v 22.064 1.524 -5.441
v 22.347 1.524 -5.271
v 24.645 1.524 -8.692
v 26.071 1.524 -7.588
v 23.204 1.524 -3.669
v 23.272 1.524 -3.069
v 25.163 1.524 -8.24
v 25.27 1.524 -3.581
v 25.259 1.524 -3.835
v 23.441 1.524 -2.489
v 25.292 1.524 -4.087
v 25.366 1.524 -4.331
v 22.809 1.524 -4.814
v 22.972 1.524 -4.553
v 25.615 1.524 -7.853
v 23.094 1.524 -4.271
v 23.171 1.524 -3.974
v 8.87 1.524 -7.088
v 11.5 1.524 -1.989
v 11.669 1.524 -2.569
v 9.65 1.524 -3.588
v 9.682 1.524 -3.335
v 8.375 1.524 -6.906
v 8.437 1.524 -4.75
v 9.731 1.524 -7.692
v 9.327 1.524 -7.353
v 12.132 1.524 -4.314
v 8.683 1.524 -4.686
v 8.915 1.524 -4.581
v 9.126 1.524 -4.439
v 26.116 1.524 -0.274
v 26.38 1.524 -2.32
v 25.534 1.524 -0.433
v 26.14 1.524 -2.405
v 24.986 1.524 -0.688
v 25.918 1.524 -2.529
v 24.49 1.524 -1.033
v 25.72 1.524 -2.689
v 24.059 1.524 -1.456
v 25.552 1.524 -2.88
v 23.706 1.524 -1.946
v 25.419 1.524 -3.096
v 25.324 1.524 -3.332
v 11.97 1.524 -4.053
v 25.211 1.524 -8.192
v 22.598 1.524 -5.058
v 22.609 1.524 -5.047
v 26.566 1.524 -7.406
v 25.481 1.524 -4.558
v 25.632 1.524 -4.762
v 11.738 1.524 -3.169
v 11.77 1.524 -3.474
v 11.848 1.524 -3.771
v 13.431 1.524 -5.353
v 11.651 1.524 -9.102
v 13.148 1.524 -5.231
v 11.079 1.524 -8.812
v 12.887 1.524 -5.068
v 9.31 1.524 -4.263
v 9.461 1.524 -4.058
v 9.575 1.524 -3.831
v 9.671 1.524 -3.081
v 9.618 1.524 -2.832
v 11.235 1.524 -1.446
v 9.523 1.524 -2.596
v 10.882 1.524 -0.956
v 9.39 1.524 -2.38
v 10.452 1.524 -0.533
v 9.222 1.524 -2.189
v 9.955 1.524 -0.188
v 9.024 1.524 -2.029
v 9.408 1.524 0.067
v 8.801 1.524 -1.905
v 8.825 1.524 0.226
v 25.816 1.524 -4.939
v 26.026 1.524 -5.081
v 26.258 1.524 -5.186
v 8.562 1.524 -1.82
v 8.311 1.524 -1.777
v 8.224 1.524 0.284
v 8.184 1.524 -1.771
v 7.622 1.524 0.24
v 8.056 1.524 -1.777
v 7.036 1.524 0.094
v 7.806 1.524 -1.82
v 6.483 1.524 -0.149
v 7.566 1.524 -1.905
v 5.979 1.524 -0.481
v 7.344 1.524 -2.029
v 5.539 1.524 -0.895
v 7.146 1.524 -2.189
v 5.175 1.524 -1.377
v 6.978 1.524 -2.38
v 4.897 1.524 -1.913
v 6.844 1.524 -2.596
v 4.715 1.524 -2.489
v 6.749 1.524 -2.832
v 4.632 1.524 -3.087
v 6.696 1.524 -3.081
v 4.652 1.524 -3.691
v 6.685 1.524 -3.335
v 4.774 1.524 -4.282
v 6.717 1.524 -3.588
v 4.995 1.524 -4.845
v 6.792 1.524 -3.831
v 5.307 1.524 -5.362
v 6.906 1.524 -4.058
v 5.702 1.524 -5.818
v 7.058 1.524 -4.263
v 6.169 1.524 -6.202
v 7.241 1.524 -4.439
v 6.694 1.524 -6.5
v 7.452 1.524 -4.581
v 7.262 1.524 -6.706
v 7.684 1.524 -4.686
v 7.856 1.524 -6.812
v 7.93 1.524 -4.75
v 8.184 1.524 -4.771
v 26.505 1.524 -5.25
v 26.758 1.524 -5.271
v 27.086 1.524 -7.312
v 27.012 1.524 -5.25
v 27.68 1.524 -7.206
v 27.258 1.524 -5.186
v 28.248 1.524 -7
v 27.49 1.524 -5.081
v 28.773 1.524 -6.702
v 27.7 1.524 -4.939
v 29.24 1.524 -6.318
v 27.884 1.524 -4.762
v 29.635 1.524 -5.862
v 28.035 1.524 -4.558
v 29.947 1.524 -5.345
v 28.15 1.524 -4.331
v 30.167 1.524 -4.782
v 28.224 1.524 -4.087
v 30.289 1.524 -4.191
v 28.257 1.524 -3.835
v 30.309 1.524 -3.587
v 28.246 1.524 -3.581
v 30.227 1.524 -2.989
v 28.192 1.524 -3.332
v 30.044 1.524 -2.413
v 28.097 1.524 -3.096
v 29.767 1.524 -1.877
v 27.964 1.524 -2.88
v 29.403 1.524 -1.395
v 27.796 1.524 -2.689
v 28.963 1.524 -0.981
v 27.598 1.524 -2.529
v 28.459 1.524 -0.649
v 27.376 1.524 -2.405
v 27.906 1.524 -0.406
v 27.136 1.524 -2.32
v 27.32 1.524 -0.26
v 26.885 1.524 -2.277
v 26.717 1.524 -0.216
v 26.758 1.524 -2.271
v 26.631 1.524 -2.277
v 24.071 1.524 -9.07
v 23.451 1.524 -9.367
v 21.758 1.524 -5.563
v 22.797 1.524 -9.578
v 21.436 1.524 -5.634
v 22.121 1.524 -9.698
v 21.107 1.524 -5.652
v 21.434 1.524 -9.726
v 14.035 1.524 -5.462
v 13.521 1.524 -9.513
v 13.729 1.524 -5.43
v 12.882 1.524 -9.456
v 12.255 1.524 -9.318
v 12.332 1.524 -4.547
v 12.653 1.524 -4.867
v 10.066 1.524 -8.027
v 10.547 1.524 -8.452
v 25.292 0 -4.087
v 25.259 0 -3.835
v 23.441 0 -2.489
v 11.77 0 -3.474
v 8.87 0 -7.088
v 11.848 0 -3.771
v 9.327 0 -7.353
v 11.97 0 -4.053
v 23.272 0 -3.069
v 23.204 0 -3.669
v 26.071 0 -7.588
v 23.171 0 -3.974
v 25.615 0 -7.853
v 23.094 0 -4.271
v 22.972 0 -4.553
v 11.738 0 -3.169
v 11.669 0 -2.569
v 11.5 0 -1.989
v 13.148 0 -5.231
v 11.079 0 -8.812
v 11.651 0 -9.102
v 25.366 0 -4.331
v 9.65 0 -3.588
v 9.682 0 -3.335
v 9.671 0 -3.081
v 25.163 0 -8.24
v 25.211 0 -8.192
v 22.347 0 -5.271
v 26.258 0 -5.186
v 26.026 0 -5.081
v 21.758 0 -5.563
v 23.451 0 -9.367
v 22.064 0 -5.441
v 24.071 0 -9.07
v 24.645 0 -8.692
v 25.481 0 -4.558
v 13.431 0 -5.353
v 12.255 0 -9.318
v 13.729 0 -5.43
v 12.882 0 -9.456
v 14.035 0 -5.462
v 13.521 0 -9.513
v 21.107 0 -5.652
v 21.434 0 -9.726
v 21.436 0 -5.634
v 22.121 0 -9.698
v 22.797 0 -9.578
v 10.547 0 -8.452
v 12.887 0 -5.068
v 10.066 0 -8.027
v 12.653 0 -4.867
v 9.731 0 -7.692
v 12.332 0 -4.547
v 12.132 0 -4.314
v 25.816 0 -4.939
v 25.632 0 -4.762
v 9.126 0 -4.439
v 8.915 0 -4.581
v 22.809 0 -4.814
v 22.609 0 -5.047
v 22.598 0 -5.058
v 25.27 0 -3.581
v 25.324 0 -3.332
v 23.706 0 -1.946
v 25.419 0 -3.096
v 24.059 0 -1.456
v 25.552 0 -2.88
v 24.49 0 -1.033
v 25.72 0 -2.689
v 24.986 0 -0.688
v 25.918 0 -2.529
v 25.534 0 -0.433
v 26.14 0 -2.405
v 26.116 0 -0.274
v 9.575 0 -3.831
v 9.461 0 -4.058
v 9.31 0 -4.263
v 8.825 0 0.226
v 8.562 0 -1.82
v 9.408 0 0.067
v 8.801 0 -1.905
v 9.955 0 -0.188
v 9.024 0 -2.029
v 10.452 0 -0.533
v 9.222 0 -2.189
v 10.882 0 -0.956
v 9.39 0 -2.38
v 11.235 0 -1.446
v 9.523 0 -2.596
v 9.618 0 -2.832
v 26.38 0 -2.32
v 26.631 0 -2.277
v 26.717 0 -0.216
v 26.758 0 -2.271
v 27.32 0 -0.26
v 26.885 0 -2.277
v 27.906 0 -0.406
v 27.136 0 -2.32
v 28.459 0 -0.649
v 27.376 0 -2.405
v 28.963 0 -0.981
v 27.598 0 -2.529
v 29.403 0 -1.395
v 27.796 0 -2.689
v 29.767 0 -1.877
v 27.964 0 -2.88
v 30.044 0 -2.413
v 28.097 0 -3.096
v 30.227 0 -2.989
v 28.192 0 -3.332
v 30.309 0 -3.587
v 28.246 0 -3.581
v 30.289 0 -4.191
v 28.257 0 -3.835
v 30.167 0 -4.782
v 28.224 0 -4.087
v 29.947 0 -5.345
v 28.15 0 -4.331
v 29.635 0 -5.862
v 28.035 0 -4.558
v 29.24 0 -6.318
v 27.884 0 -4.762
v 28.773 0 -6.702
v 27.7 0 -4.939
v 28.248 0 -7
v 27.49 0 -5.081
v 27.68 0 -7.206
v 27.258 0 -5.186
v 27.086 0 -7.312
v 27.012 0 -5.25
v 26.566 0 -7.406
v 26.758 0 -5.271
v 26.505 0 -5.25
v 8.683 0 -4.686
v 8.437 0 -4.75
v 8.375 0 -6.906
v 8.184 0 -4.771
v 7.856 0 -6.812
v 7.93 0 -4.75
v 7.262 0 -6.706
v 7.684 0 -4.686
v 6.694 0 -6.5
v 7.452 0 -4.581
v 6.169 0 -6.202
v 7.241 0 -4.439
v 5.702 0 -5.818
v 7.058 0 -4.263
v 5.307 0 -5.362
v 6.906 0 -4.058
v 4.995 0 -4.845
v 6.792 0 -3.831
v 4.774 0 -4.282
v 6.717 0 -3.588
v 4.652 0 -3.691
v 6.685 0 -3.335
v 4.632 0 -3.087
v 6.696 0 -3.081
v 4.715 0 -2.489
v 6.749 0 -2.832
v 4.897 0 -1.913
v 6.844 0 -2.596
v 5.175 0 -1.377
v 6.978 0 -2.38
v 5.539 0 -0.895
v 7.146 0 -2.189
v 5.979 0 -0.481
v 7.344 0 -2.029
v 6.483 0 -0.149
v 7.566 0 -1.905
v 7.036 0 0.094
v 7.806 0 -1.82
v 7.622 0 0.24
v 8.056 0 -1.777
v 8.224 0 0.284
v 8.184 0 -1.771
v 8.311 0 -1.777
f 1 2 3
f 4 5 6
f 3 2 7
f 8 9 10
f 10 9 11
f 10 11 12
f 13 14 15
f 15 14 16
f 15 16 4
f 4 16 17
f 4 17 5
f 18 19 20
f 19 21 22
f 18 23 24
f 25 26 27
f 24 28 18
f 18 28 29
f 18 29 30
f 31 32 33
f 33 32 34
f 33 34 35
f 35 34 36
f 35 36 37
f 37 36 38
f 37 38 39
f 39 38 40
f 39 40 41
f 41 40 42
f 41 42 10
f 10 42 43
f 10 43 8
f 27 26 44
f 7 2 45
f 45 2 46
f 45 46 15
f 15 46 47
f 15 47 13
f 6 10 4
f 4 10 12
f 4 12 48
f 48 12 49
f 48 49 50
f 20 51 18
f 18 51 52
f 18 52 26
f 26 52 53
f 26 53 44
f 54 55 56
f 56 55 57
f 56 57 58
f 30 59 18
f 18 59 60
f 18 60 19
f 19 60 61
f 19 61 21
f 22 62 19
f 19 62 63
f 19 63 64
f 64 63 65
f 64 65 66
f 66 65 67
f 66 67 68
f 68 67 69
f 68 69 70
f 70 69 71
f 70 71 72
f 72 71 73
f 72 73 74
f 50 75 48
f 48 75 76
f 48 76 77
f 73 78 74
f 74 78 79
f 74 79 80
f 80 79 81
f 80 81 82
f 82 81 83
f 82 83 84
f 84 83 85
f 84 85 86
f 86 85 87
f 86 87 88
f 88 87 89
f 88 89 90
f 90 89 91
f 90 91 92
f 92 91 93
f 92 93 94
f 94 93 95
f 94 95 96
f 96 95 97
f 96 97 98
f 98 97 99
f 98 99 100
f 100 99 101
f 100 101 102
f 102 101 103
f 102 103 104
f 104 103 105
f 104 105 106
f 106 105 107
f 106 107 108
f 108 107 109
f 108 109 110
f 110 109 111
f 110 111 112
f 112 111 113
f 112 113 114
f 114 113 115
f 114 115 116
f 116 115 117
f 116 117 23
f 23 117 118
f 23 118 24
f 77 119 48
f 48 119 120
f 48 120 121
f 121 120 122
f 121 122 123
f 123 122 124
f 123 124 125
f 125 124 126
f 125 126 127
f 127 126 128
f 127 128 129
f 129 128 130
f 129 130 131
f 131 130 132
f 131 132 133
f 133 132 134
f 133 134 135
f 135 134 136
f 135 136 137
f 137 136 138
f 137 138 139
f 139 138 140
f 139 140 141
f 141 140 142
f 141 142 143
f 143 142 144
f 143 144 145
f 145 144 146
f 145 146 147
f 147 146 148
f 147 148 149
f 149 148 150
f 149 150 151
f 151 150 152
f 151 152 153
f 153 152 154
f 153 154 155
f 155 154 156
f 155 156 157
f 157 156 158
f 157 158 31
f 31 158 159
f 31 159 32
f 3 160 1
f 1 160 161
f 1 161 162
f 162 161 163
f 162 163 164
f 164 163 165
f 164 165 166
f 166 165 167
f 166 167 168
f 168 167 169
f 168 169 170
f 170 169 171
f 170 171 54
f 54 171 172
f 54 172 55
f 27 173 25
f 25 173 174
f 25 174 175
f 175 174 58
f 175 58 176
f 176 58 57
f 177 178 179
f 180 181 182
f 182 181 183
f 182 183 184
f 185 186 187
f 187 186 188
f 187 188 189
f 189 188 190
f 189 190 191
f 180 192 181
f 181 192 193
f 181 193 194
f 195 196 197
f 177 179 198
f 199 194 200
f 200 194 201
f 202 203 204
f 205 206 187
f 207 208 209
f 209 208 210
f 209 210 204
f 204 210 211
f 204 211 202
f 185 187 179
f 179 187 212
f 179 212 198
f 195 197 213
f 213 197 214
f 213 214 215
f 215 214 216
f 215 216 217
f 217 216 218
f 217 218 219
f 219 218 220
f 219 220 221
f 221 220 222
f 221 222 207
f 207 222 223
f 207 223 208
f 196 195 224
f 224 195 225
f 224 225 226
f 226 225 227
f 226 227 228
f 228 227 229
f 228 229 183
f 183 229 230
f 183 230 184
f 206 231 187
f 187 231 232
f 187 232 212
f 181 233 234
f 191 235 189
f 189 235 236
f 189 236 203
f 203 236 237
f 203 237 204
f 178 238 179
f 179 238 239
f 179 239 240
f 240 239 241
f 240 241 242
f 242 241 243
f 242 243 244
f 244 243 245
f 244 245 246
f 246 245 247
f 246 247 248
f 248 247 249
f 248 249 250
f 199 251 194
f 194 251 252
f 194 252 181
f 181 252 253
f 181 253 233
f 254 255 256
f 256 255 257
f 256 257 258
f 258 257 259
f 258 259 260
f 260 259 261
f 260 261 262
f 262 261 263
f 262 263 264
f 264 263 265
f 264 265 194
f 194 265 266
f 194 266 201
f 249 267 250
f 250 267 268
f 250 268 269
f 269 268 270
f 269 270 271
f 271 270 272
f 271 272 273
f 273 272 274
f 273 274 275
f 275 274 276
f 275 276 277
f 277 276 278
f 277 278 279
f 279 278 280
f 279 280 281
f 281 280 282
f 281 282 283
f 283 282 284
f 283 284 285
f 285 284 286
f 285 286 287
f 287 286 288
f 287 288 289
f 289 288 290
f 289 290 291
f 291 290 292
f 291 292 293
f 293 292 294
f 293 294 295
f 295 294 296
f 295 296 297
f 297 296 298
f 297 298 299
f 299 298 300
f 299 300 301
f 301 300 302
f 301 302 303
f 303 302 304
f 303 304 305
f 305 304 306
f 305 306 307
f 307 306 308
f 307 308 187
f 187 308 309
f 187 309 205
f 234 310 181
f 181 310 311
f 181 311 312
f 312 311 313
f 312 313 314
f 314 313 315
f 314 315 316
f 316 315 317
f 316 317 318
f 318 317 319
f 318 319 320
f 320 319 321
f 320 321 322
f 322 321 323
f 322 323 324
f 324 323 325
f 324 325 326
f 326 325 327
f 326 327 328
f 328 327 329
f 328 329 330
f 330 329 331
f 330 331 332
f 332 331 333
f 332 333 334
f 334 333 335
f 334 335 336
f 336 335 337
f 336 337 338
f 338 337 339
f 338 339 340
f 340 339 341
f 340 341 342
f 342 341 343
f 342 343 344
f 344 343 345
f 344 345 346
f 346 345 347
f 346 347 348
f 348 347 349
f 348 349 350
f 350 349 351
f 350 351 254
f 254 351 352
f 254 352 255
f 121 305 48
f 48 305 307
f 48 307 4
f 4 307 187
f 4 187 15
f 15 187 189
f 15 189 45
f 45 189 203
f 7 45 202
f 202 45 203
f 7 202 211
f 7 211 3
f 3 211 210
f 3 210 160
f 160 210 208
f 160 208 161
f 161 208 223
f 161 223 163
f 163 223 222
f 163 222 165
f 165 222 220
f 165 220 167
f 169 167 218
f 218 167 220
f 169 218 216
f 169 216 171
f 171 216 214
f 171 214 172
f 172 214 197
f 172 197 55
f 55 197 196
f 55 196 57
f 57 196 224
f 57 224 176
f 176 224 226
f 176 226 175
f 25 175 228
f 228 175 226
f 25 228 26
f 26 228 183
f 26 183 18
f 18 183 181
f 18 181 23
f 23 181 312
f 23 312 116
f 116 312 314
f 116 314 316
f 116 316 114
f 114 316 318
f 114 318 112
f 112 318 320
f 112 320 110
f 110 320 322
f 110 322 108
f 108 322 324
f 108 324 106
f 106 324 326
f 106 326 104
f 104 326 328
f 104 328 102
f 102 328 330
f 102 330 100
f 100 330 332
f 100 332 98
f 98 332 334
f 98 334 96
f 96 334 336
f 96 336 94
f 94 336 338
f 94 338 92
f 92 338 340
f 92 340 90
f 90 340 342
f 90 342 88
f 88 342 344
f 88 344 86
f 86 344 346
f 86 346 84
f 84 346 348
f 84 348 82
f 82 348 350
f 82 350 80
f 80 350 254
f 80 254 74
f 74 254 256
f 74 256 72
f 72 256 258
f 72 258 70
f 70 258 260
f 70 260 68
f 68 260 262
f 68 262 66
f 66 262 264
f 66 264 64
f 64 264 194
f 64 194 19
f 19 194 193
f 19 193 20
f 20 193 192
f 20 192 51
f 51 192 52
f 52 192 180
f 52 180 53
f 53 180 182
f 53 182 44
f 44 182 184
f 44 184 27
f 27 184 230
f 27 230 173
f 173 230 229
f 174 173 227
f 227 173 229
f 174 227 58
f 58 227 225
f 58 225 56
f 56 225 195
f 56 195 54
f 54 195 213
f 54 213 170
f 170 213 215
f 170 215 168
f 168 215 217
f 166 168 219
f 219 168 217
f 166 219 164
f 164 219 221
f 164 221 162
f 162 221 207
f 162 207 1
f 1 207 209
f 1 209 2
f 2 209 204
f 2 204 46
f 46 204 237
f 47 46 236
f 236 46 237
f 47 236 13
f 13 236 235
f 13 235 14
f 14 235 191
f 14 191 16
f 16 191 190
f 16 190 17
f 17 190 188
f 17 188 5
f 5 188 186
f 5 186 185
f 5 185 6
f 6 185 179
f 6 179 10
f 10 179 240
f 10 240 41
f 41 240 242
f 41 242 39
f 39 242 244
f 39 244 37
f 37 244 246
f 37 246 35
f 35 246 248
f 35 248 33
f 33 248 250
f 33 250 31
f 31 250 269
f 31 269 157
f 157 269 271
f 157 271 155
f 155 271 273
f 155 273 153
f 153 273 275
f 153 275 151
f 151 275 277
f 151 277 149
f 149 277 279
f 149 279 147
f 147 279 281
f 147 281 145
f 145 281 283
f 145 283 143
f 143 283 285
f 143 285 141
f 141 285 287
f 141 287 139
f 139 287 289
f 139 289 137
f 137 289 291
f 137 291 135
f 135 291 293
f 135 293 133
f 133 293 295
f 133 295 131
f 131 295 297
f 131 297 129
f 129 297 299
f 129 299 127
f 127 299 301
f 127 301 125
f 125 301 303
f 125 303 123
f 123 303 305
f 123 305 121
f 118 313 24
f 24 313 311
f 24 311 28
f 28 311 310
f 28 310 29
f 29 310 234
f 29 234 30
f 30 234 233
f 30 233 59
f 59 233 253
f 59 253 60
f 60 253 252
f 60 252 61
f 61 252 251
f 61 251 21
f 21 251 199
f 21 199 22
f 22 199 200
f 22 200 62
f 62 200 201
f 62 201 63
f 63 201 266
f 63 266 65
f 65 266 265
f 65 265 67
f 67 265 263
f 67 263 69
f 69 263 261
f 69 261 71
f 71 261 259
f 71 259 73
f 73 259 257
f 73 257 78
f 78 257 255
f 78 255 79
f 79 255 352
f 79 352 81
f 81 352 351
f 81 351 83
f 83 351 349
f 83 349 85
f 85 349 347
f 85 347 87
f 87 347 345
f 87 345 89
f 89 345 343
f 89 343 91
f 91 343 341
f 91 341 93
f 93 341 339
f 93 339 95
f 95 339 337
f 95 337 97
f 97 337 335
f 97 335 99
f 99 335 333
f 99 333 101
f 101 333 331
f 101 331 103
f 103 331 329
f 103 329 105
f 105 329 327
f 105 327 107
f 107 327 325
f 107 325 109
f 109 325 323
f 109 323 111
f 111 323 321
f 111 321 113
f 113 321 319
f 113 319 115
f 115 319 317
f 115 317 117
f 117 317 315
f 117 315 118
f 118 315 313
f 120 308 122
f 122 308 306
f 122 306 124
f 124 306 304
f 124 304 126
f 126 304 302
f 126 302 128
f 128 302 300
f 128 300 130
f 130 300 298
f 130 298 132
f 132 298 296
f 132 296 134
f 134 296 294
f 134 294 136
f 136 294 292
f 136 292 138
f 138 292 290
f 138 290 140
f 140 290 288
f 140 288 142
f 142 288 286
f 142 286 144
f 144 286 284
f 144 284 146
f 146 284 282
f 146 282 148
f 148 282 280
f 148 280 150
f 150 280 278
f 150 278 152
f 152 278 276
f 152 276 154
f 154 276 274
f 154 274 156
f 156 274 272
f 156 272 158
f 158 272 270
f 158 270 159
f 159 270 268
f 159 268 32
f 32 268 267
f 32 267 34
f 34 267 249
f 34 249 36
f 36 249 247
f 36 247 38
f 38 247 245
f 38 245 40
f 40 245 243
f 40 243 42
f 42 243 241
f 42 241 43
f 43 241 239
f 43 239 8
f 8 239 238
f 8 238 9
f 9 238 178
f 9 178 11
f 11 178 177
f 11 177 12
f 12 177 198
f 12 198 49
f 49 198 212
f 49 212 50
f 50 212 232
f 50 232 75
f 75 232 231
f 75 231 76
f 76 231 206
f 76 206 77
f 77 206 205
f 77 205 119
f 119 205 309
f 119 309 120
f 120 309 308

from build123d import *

# Parameters (mm, degrees)
SKETCH1_R           = 1.5
BOSS_EXTRUDE1_DEPTH = 1.524


with BuildPart() as part:
    # Sketch1 → Boss-Extrude1 (new body)
    with BuildSketch(Plane(origin=(0, 0, 0), x_dir=(1, 0, 0), z_dir=(0, 1, 0))):
        with BuildLine():
            Line((14.035300806, 5.461735825), (21.10663358, 5.652076803))
            ThreePointArc((21.10663358, 5.652076803), (21.913592667, 5.50842857), (22.59815065, 5.057653515))
            Line((22.59815065, 5.057653515), (22.609206424, 5.046597741))
            ThreePointArc((22.609206424, 5.046597741), (23.038239741, 4.414453667), (23.203514475, 3.668558246))
            ThreePointArc((23.203514475, 3.668558246), (29.19167252, 1.17868297), (27.085559617, 7.312344528))
            ThreePointArc((27.085559617, 7.312344528), (26.071299756, 7.588172266), (25.211041867, 8.192126215))
            Line((25.211041867, 8.192126215), (25.162863778, 8.240304305))
            ThreePointArc((25.162863778, 8.240304305), (23.45146882, 9.367241942), (21.434071104, 9.726362525))
            Line((21.434071104, 9.726362525), (13.521182629, 9.513369165))
            ThreePointArc((13.521182629, 9.513369165), (11.650868629, 9.101934762), (10.065770406, 8.027310944))
            Line((10.065770406, 8.027310944), (9.730613659, 7.692154197))
            ThreePointArc((9.730613659, 7.692154197), (8.87035577, 7.088200248), (7.856095909, 6.81237251))
            ThreePointArc((7.856095909, 6.81237251), (5.749983006, 0.678710952), (11.738141051, 3.168586228))
            ThreePointArc((11.738141051, 3.168586228), (11.903415785, 3.914481649), (12.332449102, 4.546625723))
            Line((12.332449102, 4.546625723), (12.653135916, 4.867312537))
            ThreePointArc((12.653135916, 4.867312537), (13.287175206, 5.297162064), (14.035300806, 5.461735825))
        make_face()
        with Locations(Location((8.183630247, 3.271488826, 0), (0, 0, 90))):
            Circle(SKETCH1_R, mode=Mode.SUBTRACT)
        with Locations(Location((26.758025279, 3.771460844, 0), (0, 0, 90))):
            Circle(SKETCH1_R, mode=Mode.SUBTRACT)
    extrude(amount=BOSS_EXTRUDE1_DEPTH)


solid = part.part
